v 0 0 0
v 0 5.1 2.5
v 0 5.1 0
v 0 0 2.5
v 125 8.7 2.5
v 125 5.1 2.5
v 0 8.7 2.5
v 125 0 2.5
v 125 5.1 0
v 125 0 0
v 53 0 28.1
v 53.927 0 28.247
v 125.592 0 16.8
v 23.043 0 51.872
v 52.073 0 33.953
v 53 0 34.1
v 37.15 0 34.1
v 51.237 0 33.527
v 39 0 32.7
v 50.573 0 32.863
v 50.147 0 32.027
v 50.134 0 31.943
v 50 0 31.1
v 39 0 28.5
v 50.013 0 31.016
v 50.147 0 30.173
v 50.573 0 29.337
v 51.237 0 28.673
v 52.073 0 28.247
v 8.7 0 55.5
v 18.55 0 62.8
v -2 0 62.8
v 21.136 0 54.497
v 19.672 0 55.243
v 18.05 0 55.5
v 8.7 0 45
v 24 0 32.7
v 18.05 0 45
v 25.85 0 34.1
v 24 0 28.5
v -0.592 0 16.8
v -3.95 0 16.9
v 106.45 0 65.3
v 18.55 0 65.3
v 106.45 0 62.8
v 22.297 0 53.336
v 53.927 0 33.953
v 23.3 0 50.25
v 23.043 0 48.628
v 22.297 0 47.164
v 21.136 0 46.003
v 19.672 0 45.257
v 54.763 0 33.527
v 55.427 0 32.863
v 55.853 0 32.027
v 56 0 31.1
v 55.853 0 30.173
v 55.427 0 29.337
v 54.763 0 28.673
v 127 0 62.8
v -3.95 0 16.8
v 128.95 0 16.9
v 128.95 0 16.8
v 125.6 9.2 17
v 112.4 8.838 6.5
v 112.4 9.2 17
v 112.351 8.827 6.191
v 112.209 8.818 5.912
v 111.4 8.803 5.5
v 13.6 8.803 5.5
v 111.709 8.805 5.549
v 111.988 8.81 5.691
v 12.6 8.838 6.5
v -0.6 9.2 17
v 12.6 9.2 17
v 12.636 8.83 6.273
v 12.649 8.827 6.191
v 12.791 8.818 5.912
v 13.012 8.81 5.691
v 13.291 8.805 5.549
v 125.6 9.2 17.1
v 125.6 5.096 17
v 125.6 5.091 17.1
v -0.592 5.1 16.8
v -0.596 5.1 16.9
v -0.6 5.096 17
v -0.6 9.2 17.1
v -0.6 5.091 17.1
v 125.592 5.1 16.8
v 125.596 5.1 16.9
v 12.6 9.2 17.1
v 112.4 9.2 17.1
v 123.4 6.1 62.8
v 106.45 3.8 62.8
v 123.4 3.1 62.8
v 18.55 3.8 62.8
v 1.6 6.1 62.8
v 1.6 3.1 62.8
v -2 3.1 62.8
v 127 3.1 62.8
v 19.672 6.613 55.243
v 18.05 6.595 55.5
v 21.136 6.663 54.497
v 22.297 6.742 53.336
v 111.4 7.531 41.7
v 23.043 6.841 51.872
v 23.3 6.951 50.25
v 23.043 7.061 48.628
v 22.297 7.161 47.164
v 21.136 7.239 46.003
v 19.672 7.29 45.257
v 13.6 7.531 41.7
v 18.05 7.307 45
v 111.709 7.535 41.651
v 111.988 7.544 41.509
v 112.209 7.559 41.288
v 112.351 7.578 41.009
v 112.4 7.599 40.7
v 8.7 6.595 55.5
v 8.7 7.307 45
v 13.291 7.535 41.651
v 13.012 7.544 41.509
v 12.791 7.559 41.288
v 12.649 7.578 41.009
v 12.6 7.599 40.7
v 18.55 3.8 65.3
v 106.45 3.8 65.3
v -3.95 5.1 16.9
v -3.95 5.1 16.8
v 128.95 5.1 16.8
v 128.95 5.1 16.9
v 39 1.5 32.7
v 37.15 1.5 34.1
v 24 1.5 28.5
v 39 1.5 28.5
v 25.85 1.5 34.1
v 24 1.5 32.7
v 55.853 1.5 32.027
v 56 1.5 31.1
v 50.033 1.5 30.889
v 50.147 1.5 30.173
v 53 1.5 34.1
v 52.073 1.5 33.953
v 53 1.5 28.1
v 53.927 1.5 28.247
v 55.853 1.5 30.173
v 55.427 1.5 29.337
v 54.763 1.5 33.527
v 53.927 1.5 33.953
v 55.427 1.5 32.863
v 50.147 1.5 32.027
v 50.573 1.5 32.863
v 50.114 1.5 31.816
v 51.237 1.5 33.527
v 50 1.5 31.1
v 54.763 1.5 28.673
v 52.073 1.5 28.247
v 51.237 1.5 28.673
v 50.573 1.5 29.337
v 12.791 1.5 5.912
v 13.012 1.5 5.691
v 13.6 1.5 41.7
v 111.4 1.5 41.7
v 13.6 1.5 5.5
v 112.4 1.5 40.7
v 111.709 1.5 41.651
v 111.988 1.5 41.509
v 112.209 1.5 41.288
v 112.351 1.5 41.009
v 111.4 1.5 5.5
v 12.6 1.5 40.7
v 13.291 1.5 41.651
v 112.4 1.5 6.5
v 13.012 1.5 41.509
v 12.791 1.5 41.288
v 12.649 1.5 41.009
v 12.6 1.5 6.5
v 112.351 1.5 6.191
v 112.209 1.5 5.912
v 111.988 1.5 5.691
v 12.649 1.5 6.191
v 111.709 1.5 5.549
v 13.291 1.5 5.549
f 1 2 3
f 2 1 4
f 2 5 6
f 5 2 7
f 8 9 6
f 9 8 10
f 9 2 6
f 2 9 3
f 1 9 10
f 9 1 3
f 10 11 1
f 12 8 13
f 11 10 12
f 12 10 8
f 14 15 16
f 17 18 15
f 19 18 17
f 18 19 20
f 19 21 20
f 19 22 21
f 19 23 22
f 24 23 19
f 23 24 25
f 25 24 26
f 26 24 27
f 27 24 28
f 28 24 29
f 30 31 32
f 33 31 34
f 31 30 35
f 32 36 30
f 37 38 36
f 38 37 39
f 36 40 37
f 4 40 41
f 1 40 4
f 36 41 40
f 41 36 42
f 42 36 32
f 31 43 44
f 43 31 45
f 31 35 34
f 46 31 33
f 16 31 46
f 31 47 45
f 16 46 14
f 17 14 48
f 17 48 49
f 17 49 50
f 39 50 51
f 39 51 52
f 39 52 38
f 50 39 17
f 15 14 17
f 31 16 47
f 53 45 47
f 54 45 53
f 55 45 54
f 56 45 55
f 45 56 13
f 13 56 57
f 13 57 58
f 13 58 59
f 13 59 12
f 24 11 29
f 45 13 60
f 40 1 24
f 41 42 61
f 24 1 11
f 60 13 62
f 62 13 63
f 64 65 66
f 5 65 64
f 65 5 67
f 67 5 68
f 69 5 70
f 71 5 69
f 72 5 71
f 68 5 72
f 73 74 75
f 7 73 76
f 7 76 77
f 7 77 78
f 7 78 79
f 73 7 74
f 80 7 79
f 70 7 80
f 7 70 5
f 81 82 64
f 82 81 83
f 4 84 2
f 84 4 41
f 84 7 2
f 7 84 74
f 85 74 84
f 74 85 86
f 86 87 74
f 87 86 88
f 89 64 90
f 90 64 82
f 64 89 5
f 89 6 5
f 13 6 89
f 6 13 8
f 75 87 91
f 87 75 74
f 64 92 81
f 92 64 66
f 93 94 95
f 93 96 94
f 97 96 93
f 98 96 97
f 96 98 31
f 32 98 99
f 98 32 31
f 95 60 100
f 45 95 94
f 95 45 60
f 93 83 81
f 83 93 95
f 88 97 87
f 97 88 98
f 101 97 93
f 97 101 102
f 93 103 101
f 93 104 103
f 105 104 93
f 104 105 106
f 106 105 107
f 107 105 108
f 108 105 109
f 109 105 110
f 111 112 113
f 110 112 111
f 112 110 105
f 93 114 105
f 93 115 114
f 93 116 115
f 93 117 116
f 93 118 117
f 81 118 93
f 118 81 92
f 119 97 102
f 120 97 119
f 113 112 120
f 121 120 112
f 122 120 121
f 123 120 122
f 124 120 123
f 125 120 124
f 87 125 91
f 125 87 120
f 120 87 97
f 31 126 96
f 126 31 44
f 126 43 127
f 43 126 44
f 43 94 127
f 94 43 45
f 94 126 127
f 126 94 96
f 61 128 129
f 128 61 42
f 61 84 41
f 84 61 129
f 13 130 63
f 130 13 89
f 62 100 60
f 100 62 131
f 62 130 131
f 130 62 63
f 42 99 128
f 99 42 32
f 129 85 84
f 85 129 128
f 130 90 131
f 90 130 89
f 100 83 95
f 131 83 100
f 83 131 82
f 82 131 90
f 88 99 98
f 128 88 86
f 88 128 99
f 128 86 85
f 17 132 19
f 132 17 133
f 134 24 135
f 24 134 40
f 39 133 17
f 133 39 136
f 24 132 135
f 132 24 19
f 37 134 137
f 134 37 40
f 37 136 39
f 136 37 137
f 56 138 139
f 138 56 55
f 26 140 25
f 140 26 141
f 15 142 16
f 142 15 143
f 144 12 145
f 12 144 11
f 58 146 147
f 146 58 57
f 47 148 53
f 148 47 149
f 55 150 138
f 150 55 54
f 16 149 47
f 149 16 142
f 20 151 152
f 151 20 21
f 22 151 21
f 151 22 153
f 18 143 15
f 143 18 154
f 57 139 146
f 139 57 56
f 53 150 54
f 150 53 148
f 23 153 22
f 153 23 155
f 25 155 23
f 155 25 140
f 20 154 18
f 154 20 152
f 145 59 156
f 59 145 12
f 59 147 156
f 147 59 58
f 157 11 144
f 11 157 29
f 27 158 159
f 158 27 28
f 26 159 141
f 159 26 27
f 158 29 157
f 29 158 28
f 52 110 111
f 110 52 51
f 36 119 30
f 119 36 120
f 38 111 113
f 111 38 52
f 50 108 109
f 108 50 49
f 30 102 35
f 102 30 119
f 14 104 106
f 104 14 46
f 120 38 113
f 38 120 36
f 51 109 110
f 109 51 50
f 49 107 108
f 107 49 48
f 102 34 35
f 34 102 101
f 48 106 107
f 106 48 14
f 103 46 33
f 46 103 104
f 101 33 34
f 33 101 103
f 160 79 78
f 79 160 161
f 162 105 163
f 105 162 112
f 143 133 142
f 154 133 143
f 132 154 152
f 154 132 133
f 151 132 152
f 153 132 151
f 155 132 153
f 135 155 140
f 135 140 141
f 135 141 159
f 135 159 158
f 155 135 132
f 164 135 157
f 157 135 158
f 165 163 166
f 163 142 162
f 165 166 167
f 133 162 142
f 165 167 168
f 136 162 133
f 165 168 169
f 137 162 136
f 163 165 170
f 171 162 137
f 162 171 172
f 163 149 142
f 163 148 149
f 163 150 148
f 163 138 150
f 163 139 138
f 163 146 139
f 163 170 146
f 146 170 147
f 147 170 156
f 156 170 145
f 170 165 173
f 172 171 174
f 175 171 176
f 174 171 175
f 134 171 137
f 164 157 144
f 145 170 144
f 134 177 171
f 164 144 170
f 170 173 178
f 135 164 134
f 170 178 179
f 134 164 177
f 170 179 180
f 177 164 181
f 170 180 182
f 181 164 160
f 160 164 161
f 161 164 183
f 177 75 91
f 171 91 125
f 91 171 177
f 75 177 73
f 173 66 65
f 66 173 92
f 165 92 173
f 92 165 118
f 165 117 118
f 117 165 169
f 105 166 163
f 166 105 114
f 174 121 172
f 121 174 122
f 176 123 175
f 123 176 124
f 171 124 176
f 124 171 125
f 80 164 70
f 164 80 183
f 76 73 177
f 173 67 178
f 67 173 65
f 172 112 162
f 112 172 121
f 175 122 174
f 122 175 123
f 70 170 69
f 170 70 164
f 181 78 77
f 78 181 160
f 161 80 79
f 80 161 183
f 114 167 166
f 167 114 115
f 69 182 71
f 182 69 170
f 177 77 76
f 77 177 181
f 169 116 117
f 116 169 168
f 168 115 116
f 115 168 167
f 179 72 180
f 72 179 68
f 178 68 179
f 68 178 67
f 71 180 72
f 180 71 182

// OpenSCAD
difference() {
    back_plate();
    translate([8.7, -0.1, 45]) power_jack(d=10);
    translate([-(99.8-125)/2, 1.5, 5.5]) indent(d=10);
    translate([24, 10, 5.6+45-16.5]) rotate([-180, 0, 0]) pi_plugs(d=11);
}

module indent(d=1) {
    $fn = 20;
    
    hull() {
        for (x = [2/2, 99.8-2/2]) {
            for (z = [2/2, 36.2-2/2]) {
                translate([x, 0, z]) rotate([-90, 0, 0]) cylinder(d=2, h=d);
            }
        }
    }
}

module pi_plugs(d=1) {
    $fn = 20;
    
    hull() {
        translate([0, 0, 5.6-4.2]) cube([15, d, 4.2]);
        translate([-(11.3-15)/2, 0, 0]) cube([11.3, d, 0.1]);
    }

    translate([32-6/2, 0, 6/2]) rotate([-90, 0, 0]) cylinder(d=6, h=d);
}

module power_jack(d=1) {
    $fn = 20;
    hull() {
        cube([0.1, d, 10.5]);
        translate([14.6-(10.5/2), 0, 10.5/2]) rotate([-90, 0, 0]) cylinder(d=10.5, h=d);
    }
}

module back_plate() {
    translate([]) cube([125, 5.1, 2.5]);

    hull() {
        translate([0, 0, 2.5]) cube([125, 8.7, 0.1]);
        translate([-(126.2-125)/2, 0, 17]) cube([126.2, 9.2, 0.1]);
    }

    hull() {
        translate([-(126.2-125)/2, 0, 17]) cube([126.2, 9.2, 0.1]);
        translate([-(121.8-125)/2, 0, 62.7]) cube([121.8, 6.1, 0.1]);
    }
    
    translate([-(87.9-125)/2, 0, 62.7]) cube([87.9, 3.8, 2.6]);

    hull() {
        translate([-(132.9-125)/2, 0, 16.8]) cube([132.9, 5.1, 0.1]);
        translate([-(129-125)/2, 0, 62.7]) cube([129, 3.1, 0.1]);
    }
}
